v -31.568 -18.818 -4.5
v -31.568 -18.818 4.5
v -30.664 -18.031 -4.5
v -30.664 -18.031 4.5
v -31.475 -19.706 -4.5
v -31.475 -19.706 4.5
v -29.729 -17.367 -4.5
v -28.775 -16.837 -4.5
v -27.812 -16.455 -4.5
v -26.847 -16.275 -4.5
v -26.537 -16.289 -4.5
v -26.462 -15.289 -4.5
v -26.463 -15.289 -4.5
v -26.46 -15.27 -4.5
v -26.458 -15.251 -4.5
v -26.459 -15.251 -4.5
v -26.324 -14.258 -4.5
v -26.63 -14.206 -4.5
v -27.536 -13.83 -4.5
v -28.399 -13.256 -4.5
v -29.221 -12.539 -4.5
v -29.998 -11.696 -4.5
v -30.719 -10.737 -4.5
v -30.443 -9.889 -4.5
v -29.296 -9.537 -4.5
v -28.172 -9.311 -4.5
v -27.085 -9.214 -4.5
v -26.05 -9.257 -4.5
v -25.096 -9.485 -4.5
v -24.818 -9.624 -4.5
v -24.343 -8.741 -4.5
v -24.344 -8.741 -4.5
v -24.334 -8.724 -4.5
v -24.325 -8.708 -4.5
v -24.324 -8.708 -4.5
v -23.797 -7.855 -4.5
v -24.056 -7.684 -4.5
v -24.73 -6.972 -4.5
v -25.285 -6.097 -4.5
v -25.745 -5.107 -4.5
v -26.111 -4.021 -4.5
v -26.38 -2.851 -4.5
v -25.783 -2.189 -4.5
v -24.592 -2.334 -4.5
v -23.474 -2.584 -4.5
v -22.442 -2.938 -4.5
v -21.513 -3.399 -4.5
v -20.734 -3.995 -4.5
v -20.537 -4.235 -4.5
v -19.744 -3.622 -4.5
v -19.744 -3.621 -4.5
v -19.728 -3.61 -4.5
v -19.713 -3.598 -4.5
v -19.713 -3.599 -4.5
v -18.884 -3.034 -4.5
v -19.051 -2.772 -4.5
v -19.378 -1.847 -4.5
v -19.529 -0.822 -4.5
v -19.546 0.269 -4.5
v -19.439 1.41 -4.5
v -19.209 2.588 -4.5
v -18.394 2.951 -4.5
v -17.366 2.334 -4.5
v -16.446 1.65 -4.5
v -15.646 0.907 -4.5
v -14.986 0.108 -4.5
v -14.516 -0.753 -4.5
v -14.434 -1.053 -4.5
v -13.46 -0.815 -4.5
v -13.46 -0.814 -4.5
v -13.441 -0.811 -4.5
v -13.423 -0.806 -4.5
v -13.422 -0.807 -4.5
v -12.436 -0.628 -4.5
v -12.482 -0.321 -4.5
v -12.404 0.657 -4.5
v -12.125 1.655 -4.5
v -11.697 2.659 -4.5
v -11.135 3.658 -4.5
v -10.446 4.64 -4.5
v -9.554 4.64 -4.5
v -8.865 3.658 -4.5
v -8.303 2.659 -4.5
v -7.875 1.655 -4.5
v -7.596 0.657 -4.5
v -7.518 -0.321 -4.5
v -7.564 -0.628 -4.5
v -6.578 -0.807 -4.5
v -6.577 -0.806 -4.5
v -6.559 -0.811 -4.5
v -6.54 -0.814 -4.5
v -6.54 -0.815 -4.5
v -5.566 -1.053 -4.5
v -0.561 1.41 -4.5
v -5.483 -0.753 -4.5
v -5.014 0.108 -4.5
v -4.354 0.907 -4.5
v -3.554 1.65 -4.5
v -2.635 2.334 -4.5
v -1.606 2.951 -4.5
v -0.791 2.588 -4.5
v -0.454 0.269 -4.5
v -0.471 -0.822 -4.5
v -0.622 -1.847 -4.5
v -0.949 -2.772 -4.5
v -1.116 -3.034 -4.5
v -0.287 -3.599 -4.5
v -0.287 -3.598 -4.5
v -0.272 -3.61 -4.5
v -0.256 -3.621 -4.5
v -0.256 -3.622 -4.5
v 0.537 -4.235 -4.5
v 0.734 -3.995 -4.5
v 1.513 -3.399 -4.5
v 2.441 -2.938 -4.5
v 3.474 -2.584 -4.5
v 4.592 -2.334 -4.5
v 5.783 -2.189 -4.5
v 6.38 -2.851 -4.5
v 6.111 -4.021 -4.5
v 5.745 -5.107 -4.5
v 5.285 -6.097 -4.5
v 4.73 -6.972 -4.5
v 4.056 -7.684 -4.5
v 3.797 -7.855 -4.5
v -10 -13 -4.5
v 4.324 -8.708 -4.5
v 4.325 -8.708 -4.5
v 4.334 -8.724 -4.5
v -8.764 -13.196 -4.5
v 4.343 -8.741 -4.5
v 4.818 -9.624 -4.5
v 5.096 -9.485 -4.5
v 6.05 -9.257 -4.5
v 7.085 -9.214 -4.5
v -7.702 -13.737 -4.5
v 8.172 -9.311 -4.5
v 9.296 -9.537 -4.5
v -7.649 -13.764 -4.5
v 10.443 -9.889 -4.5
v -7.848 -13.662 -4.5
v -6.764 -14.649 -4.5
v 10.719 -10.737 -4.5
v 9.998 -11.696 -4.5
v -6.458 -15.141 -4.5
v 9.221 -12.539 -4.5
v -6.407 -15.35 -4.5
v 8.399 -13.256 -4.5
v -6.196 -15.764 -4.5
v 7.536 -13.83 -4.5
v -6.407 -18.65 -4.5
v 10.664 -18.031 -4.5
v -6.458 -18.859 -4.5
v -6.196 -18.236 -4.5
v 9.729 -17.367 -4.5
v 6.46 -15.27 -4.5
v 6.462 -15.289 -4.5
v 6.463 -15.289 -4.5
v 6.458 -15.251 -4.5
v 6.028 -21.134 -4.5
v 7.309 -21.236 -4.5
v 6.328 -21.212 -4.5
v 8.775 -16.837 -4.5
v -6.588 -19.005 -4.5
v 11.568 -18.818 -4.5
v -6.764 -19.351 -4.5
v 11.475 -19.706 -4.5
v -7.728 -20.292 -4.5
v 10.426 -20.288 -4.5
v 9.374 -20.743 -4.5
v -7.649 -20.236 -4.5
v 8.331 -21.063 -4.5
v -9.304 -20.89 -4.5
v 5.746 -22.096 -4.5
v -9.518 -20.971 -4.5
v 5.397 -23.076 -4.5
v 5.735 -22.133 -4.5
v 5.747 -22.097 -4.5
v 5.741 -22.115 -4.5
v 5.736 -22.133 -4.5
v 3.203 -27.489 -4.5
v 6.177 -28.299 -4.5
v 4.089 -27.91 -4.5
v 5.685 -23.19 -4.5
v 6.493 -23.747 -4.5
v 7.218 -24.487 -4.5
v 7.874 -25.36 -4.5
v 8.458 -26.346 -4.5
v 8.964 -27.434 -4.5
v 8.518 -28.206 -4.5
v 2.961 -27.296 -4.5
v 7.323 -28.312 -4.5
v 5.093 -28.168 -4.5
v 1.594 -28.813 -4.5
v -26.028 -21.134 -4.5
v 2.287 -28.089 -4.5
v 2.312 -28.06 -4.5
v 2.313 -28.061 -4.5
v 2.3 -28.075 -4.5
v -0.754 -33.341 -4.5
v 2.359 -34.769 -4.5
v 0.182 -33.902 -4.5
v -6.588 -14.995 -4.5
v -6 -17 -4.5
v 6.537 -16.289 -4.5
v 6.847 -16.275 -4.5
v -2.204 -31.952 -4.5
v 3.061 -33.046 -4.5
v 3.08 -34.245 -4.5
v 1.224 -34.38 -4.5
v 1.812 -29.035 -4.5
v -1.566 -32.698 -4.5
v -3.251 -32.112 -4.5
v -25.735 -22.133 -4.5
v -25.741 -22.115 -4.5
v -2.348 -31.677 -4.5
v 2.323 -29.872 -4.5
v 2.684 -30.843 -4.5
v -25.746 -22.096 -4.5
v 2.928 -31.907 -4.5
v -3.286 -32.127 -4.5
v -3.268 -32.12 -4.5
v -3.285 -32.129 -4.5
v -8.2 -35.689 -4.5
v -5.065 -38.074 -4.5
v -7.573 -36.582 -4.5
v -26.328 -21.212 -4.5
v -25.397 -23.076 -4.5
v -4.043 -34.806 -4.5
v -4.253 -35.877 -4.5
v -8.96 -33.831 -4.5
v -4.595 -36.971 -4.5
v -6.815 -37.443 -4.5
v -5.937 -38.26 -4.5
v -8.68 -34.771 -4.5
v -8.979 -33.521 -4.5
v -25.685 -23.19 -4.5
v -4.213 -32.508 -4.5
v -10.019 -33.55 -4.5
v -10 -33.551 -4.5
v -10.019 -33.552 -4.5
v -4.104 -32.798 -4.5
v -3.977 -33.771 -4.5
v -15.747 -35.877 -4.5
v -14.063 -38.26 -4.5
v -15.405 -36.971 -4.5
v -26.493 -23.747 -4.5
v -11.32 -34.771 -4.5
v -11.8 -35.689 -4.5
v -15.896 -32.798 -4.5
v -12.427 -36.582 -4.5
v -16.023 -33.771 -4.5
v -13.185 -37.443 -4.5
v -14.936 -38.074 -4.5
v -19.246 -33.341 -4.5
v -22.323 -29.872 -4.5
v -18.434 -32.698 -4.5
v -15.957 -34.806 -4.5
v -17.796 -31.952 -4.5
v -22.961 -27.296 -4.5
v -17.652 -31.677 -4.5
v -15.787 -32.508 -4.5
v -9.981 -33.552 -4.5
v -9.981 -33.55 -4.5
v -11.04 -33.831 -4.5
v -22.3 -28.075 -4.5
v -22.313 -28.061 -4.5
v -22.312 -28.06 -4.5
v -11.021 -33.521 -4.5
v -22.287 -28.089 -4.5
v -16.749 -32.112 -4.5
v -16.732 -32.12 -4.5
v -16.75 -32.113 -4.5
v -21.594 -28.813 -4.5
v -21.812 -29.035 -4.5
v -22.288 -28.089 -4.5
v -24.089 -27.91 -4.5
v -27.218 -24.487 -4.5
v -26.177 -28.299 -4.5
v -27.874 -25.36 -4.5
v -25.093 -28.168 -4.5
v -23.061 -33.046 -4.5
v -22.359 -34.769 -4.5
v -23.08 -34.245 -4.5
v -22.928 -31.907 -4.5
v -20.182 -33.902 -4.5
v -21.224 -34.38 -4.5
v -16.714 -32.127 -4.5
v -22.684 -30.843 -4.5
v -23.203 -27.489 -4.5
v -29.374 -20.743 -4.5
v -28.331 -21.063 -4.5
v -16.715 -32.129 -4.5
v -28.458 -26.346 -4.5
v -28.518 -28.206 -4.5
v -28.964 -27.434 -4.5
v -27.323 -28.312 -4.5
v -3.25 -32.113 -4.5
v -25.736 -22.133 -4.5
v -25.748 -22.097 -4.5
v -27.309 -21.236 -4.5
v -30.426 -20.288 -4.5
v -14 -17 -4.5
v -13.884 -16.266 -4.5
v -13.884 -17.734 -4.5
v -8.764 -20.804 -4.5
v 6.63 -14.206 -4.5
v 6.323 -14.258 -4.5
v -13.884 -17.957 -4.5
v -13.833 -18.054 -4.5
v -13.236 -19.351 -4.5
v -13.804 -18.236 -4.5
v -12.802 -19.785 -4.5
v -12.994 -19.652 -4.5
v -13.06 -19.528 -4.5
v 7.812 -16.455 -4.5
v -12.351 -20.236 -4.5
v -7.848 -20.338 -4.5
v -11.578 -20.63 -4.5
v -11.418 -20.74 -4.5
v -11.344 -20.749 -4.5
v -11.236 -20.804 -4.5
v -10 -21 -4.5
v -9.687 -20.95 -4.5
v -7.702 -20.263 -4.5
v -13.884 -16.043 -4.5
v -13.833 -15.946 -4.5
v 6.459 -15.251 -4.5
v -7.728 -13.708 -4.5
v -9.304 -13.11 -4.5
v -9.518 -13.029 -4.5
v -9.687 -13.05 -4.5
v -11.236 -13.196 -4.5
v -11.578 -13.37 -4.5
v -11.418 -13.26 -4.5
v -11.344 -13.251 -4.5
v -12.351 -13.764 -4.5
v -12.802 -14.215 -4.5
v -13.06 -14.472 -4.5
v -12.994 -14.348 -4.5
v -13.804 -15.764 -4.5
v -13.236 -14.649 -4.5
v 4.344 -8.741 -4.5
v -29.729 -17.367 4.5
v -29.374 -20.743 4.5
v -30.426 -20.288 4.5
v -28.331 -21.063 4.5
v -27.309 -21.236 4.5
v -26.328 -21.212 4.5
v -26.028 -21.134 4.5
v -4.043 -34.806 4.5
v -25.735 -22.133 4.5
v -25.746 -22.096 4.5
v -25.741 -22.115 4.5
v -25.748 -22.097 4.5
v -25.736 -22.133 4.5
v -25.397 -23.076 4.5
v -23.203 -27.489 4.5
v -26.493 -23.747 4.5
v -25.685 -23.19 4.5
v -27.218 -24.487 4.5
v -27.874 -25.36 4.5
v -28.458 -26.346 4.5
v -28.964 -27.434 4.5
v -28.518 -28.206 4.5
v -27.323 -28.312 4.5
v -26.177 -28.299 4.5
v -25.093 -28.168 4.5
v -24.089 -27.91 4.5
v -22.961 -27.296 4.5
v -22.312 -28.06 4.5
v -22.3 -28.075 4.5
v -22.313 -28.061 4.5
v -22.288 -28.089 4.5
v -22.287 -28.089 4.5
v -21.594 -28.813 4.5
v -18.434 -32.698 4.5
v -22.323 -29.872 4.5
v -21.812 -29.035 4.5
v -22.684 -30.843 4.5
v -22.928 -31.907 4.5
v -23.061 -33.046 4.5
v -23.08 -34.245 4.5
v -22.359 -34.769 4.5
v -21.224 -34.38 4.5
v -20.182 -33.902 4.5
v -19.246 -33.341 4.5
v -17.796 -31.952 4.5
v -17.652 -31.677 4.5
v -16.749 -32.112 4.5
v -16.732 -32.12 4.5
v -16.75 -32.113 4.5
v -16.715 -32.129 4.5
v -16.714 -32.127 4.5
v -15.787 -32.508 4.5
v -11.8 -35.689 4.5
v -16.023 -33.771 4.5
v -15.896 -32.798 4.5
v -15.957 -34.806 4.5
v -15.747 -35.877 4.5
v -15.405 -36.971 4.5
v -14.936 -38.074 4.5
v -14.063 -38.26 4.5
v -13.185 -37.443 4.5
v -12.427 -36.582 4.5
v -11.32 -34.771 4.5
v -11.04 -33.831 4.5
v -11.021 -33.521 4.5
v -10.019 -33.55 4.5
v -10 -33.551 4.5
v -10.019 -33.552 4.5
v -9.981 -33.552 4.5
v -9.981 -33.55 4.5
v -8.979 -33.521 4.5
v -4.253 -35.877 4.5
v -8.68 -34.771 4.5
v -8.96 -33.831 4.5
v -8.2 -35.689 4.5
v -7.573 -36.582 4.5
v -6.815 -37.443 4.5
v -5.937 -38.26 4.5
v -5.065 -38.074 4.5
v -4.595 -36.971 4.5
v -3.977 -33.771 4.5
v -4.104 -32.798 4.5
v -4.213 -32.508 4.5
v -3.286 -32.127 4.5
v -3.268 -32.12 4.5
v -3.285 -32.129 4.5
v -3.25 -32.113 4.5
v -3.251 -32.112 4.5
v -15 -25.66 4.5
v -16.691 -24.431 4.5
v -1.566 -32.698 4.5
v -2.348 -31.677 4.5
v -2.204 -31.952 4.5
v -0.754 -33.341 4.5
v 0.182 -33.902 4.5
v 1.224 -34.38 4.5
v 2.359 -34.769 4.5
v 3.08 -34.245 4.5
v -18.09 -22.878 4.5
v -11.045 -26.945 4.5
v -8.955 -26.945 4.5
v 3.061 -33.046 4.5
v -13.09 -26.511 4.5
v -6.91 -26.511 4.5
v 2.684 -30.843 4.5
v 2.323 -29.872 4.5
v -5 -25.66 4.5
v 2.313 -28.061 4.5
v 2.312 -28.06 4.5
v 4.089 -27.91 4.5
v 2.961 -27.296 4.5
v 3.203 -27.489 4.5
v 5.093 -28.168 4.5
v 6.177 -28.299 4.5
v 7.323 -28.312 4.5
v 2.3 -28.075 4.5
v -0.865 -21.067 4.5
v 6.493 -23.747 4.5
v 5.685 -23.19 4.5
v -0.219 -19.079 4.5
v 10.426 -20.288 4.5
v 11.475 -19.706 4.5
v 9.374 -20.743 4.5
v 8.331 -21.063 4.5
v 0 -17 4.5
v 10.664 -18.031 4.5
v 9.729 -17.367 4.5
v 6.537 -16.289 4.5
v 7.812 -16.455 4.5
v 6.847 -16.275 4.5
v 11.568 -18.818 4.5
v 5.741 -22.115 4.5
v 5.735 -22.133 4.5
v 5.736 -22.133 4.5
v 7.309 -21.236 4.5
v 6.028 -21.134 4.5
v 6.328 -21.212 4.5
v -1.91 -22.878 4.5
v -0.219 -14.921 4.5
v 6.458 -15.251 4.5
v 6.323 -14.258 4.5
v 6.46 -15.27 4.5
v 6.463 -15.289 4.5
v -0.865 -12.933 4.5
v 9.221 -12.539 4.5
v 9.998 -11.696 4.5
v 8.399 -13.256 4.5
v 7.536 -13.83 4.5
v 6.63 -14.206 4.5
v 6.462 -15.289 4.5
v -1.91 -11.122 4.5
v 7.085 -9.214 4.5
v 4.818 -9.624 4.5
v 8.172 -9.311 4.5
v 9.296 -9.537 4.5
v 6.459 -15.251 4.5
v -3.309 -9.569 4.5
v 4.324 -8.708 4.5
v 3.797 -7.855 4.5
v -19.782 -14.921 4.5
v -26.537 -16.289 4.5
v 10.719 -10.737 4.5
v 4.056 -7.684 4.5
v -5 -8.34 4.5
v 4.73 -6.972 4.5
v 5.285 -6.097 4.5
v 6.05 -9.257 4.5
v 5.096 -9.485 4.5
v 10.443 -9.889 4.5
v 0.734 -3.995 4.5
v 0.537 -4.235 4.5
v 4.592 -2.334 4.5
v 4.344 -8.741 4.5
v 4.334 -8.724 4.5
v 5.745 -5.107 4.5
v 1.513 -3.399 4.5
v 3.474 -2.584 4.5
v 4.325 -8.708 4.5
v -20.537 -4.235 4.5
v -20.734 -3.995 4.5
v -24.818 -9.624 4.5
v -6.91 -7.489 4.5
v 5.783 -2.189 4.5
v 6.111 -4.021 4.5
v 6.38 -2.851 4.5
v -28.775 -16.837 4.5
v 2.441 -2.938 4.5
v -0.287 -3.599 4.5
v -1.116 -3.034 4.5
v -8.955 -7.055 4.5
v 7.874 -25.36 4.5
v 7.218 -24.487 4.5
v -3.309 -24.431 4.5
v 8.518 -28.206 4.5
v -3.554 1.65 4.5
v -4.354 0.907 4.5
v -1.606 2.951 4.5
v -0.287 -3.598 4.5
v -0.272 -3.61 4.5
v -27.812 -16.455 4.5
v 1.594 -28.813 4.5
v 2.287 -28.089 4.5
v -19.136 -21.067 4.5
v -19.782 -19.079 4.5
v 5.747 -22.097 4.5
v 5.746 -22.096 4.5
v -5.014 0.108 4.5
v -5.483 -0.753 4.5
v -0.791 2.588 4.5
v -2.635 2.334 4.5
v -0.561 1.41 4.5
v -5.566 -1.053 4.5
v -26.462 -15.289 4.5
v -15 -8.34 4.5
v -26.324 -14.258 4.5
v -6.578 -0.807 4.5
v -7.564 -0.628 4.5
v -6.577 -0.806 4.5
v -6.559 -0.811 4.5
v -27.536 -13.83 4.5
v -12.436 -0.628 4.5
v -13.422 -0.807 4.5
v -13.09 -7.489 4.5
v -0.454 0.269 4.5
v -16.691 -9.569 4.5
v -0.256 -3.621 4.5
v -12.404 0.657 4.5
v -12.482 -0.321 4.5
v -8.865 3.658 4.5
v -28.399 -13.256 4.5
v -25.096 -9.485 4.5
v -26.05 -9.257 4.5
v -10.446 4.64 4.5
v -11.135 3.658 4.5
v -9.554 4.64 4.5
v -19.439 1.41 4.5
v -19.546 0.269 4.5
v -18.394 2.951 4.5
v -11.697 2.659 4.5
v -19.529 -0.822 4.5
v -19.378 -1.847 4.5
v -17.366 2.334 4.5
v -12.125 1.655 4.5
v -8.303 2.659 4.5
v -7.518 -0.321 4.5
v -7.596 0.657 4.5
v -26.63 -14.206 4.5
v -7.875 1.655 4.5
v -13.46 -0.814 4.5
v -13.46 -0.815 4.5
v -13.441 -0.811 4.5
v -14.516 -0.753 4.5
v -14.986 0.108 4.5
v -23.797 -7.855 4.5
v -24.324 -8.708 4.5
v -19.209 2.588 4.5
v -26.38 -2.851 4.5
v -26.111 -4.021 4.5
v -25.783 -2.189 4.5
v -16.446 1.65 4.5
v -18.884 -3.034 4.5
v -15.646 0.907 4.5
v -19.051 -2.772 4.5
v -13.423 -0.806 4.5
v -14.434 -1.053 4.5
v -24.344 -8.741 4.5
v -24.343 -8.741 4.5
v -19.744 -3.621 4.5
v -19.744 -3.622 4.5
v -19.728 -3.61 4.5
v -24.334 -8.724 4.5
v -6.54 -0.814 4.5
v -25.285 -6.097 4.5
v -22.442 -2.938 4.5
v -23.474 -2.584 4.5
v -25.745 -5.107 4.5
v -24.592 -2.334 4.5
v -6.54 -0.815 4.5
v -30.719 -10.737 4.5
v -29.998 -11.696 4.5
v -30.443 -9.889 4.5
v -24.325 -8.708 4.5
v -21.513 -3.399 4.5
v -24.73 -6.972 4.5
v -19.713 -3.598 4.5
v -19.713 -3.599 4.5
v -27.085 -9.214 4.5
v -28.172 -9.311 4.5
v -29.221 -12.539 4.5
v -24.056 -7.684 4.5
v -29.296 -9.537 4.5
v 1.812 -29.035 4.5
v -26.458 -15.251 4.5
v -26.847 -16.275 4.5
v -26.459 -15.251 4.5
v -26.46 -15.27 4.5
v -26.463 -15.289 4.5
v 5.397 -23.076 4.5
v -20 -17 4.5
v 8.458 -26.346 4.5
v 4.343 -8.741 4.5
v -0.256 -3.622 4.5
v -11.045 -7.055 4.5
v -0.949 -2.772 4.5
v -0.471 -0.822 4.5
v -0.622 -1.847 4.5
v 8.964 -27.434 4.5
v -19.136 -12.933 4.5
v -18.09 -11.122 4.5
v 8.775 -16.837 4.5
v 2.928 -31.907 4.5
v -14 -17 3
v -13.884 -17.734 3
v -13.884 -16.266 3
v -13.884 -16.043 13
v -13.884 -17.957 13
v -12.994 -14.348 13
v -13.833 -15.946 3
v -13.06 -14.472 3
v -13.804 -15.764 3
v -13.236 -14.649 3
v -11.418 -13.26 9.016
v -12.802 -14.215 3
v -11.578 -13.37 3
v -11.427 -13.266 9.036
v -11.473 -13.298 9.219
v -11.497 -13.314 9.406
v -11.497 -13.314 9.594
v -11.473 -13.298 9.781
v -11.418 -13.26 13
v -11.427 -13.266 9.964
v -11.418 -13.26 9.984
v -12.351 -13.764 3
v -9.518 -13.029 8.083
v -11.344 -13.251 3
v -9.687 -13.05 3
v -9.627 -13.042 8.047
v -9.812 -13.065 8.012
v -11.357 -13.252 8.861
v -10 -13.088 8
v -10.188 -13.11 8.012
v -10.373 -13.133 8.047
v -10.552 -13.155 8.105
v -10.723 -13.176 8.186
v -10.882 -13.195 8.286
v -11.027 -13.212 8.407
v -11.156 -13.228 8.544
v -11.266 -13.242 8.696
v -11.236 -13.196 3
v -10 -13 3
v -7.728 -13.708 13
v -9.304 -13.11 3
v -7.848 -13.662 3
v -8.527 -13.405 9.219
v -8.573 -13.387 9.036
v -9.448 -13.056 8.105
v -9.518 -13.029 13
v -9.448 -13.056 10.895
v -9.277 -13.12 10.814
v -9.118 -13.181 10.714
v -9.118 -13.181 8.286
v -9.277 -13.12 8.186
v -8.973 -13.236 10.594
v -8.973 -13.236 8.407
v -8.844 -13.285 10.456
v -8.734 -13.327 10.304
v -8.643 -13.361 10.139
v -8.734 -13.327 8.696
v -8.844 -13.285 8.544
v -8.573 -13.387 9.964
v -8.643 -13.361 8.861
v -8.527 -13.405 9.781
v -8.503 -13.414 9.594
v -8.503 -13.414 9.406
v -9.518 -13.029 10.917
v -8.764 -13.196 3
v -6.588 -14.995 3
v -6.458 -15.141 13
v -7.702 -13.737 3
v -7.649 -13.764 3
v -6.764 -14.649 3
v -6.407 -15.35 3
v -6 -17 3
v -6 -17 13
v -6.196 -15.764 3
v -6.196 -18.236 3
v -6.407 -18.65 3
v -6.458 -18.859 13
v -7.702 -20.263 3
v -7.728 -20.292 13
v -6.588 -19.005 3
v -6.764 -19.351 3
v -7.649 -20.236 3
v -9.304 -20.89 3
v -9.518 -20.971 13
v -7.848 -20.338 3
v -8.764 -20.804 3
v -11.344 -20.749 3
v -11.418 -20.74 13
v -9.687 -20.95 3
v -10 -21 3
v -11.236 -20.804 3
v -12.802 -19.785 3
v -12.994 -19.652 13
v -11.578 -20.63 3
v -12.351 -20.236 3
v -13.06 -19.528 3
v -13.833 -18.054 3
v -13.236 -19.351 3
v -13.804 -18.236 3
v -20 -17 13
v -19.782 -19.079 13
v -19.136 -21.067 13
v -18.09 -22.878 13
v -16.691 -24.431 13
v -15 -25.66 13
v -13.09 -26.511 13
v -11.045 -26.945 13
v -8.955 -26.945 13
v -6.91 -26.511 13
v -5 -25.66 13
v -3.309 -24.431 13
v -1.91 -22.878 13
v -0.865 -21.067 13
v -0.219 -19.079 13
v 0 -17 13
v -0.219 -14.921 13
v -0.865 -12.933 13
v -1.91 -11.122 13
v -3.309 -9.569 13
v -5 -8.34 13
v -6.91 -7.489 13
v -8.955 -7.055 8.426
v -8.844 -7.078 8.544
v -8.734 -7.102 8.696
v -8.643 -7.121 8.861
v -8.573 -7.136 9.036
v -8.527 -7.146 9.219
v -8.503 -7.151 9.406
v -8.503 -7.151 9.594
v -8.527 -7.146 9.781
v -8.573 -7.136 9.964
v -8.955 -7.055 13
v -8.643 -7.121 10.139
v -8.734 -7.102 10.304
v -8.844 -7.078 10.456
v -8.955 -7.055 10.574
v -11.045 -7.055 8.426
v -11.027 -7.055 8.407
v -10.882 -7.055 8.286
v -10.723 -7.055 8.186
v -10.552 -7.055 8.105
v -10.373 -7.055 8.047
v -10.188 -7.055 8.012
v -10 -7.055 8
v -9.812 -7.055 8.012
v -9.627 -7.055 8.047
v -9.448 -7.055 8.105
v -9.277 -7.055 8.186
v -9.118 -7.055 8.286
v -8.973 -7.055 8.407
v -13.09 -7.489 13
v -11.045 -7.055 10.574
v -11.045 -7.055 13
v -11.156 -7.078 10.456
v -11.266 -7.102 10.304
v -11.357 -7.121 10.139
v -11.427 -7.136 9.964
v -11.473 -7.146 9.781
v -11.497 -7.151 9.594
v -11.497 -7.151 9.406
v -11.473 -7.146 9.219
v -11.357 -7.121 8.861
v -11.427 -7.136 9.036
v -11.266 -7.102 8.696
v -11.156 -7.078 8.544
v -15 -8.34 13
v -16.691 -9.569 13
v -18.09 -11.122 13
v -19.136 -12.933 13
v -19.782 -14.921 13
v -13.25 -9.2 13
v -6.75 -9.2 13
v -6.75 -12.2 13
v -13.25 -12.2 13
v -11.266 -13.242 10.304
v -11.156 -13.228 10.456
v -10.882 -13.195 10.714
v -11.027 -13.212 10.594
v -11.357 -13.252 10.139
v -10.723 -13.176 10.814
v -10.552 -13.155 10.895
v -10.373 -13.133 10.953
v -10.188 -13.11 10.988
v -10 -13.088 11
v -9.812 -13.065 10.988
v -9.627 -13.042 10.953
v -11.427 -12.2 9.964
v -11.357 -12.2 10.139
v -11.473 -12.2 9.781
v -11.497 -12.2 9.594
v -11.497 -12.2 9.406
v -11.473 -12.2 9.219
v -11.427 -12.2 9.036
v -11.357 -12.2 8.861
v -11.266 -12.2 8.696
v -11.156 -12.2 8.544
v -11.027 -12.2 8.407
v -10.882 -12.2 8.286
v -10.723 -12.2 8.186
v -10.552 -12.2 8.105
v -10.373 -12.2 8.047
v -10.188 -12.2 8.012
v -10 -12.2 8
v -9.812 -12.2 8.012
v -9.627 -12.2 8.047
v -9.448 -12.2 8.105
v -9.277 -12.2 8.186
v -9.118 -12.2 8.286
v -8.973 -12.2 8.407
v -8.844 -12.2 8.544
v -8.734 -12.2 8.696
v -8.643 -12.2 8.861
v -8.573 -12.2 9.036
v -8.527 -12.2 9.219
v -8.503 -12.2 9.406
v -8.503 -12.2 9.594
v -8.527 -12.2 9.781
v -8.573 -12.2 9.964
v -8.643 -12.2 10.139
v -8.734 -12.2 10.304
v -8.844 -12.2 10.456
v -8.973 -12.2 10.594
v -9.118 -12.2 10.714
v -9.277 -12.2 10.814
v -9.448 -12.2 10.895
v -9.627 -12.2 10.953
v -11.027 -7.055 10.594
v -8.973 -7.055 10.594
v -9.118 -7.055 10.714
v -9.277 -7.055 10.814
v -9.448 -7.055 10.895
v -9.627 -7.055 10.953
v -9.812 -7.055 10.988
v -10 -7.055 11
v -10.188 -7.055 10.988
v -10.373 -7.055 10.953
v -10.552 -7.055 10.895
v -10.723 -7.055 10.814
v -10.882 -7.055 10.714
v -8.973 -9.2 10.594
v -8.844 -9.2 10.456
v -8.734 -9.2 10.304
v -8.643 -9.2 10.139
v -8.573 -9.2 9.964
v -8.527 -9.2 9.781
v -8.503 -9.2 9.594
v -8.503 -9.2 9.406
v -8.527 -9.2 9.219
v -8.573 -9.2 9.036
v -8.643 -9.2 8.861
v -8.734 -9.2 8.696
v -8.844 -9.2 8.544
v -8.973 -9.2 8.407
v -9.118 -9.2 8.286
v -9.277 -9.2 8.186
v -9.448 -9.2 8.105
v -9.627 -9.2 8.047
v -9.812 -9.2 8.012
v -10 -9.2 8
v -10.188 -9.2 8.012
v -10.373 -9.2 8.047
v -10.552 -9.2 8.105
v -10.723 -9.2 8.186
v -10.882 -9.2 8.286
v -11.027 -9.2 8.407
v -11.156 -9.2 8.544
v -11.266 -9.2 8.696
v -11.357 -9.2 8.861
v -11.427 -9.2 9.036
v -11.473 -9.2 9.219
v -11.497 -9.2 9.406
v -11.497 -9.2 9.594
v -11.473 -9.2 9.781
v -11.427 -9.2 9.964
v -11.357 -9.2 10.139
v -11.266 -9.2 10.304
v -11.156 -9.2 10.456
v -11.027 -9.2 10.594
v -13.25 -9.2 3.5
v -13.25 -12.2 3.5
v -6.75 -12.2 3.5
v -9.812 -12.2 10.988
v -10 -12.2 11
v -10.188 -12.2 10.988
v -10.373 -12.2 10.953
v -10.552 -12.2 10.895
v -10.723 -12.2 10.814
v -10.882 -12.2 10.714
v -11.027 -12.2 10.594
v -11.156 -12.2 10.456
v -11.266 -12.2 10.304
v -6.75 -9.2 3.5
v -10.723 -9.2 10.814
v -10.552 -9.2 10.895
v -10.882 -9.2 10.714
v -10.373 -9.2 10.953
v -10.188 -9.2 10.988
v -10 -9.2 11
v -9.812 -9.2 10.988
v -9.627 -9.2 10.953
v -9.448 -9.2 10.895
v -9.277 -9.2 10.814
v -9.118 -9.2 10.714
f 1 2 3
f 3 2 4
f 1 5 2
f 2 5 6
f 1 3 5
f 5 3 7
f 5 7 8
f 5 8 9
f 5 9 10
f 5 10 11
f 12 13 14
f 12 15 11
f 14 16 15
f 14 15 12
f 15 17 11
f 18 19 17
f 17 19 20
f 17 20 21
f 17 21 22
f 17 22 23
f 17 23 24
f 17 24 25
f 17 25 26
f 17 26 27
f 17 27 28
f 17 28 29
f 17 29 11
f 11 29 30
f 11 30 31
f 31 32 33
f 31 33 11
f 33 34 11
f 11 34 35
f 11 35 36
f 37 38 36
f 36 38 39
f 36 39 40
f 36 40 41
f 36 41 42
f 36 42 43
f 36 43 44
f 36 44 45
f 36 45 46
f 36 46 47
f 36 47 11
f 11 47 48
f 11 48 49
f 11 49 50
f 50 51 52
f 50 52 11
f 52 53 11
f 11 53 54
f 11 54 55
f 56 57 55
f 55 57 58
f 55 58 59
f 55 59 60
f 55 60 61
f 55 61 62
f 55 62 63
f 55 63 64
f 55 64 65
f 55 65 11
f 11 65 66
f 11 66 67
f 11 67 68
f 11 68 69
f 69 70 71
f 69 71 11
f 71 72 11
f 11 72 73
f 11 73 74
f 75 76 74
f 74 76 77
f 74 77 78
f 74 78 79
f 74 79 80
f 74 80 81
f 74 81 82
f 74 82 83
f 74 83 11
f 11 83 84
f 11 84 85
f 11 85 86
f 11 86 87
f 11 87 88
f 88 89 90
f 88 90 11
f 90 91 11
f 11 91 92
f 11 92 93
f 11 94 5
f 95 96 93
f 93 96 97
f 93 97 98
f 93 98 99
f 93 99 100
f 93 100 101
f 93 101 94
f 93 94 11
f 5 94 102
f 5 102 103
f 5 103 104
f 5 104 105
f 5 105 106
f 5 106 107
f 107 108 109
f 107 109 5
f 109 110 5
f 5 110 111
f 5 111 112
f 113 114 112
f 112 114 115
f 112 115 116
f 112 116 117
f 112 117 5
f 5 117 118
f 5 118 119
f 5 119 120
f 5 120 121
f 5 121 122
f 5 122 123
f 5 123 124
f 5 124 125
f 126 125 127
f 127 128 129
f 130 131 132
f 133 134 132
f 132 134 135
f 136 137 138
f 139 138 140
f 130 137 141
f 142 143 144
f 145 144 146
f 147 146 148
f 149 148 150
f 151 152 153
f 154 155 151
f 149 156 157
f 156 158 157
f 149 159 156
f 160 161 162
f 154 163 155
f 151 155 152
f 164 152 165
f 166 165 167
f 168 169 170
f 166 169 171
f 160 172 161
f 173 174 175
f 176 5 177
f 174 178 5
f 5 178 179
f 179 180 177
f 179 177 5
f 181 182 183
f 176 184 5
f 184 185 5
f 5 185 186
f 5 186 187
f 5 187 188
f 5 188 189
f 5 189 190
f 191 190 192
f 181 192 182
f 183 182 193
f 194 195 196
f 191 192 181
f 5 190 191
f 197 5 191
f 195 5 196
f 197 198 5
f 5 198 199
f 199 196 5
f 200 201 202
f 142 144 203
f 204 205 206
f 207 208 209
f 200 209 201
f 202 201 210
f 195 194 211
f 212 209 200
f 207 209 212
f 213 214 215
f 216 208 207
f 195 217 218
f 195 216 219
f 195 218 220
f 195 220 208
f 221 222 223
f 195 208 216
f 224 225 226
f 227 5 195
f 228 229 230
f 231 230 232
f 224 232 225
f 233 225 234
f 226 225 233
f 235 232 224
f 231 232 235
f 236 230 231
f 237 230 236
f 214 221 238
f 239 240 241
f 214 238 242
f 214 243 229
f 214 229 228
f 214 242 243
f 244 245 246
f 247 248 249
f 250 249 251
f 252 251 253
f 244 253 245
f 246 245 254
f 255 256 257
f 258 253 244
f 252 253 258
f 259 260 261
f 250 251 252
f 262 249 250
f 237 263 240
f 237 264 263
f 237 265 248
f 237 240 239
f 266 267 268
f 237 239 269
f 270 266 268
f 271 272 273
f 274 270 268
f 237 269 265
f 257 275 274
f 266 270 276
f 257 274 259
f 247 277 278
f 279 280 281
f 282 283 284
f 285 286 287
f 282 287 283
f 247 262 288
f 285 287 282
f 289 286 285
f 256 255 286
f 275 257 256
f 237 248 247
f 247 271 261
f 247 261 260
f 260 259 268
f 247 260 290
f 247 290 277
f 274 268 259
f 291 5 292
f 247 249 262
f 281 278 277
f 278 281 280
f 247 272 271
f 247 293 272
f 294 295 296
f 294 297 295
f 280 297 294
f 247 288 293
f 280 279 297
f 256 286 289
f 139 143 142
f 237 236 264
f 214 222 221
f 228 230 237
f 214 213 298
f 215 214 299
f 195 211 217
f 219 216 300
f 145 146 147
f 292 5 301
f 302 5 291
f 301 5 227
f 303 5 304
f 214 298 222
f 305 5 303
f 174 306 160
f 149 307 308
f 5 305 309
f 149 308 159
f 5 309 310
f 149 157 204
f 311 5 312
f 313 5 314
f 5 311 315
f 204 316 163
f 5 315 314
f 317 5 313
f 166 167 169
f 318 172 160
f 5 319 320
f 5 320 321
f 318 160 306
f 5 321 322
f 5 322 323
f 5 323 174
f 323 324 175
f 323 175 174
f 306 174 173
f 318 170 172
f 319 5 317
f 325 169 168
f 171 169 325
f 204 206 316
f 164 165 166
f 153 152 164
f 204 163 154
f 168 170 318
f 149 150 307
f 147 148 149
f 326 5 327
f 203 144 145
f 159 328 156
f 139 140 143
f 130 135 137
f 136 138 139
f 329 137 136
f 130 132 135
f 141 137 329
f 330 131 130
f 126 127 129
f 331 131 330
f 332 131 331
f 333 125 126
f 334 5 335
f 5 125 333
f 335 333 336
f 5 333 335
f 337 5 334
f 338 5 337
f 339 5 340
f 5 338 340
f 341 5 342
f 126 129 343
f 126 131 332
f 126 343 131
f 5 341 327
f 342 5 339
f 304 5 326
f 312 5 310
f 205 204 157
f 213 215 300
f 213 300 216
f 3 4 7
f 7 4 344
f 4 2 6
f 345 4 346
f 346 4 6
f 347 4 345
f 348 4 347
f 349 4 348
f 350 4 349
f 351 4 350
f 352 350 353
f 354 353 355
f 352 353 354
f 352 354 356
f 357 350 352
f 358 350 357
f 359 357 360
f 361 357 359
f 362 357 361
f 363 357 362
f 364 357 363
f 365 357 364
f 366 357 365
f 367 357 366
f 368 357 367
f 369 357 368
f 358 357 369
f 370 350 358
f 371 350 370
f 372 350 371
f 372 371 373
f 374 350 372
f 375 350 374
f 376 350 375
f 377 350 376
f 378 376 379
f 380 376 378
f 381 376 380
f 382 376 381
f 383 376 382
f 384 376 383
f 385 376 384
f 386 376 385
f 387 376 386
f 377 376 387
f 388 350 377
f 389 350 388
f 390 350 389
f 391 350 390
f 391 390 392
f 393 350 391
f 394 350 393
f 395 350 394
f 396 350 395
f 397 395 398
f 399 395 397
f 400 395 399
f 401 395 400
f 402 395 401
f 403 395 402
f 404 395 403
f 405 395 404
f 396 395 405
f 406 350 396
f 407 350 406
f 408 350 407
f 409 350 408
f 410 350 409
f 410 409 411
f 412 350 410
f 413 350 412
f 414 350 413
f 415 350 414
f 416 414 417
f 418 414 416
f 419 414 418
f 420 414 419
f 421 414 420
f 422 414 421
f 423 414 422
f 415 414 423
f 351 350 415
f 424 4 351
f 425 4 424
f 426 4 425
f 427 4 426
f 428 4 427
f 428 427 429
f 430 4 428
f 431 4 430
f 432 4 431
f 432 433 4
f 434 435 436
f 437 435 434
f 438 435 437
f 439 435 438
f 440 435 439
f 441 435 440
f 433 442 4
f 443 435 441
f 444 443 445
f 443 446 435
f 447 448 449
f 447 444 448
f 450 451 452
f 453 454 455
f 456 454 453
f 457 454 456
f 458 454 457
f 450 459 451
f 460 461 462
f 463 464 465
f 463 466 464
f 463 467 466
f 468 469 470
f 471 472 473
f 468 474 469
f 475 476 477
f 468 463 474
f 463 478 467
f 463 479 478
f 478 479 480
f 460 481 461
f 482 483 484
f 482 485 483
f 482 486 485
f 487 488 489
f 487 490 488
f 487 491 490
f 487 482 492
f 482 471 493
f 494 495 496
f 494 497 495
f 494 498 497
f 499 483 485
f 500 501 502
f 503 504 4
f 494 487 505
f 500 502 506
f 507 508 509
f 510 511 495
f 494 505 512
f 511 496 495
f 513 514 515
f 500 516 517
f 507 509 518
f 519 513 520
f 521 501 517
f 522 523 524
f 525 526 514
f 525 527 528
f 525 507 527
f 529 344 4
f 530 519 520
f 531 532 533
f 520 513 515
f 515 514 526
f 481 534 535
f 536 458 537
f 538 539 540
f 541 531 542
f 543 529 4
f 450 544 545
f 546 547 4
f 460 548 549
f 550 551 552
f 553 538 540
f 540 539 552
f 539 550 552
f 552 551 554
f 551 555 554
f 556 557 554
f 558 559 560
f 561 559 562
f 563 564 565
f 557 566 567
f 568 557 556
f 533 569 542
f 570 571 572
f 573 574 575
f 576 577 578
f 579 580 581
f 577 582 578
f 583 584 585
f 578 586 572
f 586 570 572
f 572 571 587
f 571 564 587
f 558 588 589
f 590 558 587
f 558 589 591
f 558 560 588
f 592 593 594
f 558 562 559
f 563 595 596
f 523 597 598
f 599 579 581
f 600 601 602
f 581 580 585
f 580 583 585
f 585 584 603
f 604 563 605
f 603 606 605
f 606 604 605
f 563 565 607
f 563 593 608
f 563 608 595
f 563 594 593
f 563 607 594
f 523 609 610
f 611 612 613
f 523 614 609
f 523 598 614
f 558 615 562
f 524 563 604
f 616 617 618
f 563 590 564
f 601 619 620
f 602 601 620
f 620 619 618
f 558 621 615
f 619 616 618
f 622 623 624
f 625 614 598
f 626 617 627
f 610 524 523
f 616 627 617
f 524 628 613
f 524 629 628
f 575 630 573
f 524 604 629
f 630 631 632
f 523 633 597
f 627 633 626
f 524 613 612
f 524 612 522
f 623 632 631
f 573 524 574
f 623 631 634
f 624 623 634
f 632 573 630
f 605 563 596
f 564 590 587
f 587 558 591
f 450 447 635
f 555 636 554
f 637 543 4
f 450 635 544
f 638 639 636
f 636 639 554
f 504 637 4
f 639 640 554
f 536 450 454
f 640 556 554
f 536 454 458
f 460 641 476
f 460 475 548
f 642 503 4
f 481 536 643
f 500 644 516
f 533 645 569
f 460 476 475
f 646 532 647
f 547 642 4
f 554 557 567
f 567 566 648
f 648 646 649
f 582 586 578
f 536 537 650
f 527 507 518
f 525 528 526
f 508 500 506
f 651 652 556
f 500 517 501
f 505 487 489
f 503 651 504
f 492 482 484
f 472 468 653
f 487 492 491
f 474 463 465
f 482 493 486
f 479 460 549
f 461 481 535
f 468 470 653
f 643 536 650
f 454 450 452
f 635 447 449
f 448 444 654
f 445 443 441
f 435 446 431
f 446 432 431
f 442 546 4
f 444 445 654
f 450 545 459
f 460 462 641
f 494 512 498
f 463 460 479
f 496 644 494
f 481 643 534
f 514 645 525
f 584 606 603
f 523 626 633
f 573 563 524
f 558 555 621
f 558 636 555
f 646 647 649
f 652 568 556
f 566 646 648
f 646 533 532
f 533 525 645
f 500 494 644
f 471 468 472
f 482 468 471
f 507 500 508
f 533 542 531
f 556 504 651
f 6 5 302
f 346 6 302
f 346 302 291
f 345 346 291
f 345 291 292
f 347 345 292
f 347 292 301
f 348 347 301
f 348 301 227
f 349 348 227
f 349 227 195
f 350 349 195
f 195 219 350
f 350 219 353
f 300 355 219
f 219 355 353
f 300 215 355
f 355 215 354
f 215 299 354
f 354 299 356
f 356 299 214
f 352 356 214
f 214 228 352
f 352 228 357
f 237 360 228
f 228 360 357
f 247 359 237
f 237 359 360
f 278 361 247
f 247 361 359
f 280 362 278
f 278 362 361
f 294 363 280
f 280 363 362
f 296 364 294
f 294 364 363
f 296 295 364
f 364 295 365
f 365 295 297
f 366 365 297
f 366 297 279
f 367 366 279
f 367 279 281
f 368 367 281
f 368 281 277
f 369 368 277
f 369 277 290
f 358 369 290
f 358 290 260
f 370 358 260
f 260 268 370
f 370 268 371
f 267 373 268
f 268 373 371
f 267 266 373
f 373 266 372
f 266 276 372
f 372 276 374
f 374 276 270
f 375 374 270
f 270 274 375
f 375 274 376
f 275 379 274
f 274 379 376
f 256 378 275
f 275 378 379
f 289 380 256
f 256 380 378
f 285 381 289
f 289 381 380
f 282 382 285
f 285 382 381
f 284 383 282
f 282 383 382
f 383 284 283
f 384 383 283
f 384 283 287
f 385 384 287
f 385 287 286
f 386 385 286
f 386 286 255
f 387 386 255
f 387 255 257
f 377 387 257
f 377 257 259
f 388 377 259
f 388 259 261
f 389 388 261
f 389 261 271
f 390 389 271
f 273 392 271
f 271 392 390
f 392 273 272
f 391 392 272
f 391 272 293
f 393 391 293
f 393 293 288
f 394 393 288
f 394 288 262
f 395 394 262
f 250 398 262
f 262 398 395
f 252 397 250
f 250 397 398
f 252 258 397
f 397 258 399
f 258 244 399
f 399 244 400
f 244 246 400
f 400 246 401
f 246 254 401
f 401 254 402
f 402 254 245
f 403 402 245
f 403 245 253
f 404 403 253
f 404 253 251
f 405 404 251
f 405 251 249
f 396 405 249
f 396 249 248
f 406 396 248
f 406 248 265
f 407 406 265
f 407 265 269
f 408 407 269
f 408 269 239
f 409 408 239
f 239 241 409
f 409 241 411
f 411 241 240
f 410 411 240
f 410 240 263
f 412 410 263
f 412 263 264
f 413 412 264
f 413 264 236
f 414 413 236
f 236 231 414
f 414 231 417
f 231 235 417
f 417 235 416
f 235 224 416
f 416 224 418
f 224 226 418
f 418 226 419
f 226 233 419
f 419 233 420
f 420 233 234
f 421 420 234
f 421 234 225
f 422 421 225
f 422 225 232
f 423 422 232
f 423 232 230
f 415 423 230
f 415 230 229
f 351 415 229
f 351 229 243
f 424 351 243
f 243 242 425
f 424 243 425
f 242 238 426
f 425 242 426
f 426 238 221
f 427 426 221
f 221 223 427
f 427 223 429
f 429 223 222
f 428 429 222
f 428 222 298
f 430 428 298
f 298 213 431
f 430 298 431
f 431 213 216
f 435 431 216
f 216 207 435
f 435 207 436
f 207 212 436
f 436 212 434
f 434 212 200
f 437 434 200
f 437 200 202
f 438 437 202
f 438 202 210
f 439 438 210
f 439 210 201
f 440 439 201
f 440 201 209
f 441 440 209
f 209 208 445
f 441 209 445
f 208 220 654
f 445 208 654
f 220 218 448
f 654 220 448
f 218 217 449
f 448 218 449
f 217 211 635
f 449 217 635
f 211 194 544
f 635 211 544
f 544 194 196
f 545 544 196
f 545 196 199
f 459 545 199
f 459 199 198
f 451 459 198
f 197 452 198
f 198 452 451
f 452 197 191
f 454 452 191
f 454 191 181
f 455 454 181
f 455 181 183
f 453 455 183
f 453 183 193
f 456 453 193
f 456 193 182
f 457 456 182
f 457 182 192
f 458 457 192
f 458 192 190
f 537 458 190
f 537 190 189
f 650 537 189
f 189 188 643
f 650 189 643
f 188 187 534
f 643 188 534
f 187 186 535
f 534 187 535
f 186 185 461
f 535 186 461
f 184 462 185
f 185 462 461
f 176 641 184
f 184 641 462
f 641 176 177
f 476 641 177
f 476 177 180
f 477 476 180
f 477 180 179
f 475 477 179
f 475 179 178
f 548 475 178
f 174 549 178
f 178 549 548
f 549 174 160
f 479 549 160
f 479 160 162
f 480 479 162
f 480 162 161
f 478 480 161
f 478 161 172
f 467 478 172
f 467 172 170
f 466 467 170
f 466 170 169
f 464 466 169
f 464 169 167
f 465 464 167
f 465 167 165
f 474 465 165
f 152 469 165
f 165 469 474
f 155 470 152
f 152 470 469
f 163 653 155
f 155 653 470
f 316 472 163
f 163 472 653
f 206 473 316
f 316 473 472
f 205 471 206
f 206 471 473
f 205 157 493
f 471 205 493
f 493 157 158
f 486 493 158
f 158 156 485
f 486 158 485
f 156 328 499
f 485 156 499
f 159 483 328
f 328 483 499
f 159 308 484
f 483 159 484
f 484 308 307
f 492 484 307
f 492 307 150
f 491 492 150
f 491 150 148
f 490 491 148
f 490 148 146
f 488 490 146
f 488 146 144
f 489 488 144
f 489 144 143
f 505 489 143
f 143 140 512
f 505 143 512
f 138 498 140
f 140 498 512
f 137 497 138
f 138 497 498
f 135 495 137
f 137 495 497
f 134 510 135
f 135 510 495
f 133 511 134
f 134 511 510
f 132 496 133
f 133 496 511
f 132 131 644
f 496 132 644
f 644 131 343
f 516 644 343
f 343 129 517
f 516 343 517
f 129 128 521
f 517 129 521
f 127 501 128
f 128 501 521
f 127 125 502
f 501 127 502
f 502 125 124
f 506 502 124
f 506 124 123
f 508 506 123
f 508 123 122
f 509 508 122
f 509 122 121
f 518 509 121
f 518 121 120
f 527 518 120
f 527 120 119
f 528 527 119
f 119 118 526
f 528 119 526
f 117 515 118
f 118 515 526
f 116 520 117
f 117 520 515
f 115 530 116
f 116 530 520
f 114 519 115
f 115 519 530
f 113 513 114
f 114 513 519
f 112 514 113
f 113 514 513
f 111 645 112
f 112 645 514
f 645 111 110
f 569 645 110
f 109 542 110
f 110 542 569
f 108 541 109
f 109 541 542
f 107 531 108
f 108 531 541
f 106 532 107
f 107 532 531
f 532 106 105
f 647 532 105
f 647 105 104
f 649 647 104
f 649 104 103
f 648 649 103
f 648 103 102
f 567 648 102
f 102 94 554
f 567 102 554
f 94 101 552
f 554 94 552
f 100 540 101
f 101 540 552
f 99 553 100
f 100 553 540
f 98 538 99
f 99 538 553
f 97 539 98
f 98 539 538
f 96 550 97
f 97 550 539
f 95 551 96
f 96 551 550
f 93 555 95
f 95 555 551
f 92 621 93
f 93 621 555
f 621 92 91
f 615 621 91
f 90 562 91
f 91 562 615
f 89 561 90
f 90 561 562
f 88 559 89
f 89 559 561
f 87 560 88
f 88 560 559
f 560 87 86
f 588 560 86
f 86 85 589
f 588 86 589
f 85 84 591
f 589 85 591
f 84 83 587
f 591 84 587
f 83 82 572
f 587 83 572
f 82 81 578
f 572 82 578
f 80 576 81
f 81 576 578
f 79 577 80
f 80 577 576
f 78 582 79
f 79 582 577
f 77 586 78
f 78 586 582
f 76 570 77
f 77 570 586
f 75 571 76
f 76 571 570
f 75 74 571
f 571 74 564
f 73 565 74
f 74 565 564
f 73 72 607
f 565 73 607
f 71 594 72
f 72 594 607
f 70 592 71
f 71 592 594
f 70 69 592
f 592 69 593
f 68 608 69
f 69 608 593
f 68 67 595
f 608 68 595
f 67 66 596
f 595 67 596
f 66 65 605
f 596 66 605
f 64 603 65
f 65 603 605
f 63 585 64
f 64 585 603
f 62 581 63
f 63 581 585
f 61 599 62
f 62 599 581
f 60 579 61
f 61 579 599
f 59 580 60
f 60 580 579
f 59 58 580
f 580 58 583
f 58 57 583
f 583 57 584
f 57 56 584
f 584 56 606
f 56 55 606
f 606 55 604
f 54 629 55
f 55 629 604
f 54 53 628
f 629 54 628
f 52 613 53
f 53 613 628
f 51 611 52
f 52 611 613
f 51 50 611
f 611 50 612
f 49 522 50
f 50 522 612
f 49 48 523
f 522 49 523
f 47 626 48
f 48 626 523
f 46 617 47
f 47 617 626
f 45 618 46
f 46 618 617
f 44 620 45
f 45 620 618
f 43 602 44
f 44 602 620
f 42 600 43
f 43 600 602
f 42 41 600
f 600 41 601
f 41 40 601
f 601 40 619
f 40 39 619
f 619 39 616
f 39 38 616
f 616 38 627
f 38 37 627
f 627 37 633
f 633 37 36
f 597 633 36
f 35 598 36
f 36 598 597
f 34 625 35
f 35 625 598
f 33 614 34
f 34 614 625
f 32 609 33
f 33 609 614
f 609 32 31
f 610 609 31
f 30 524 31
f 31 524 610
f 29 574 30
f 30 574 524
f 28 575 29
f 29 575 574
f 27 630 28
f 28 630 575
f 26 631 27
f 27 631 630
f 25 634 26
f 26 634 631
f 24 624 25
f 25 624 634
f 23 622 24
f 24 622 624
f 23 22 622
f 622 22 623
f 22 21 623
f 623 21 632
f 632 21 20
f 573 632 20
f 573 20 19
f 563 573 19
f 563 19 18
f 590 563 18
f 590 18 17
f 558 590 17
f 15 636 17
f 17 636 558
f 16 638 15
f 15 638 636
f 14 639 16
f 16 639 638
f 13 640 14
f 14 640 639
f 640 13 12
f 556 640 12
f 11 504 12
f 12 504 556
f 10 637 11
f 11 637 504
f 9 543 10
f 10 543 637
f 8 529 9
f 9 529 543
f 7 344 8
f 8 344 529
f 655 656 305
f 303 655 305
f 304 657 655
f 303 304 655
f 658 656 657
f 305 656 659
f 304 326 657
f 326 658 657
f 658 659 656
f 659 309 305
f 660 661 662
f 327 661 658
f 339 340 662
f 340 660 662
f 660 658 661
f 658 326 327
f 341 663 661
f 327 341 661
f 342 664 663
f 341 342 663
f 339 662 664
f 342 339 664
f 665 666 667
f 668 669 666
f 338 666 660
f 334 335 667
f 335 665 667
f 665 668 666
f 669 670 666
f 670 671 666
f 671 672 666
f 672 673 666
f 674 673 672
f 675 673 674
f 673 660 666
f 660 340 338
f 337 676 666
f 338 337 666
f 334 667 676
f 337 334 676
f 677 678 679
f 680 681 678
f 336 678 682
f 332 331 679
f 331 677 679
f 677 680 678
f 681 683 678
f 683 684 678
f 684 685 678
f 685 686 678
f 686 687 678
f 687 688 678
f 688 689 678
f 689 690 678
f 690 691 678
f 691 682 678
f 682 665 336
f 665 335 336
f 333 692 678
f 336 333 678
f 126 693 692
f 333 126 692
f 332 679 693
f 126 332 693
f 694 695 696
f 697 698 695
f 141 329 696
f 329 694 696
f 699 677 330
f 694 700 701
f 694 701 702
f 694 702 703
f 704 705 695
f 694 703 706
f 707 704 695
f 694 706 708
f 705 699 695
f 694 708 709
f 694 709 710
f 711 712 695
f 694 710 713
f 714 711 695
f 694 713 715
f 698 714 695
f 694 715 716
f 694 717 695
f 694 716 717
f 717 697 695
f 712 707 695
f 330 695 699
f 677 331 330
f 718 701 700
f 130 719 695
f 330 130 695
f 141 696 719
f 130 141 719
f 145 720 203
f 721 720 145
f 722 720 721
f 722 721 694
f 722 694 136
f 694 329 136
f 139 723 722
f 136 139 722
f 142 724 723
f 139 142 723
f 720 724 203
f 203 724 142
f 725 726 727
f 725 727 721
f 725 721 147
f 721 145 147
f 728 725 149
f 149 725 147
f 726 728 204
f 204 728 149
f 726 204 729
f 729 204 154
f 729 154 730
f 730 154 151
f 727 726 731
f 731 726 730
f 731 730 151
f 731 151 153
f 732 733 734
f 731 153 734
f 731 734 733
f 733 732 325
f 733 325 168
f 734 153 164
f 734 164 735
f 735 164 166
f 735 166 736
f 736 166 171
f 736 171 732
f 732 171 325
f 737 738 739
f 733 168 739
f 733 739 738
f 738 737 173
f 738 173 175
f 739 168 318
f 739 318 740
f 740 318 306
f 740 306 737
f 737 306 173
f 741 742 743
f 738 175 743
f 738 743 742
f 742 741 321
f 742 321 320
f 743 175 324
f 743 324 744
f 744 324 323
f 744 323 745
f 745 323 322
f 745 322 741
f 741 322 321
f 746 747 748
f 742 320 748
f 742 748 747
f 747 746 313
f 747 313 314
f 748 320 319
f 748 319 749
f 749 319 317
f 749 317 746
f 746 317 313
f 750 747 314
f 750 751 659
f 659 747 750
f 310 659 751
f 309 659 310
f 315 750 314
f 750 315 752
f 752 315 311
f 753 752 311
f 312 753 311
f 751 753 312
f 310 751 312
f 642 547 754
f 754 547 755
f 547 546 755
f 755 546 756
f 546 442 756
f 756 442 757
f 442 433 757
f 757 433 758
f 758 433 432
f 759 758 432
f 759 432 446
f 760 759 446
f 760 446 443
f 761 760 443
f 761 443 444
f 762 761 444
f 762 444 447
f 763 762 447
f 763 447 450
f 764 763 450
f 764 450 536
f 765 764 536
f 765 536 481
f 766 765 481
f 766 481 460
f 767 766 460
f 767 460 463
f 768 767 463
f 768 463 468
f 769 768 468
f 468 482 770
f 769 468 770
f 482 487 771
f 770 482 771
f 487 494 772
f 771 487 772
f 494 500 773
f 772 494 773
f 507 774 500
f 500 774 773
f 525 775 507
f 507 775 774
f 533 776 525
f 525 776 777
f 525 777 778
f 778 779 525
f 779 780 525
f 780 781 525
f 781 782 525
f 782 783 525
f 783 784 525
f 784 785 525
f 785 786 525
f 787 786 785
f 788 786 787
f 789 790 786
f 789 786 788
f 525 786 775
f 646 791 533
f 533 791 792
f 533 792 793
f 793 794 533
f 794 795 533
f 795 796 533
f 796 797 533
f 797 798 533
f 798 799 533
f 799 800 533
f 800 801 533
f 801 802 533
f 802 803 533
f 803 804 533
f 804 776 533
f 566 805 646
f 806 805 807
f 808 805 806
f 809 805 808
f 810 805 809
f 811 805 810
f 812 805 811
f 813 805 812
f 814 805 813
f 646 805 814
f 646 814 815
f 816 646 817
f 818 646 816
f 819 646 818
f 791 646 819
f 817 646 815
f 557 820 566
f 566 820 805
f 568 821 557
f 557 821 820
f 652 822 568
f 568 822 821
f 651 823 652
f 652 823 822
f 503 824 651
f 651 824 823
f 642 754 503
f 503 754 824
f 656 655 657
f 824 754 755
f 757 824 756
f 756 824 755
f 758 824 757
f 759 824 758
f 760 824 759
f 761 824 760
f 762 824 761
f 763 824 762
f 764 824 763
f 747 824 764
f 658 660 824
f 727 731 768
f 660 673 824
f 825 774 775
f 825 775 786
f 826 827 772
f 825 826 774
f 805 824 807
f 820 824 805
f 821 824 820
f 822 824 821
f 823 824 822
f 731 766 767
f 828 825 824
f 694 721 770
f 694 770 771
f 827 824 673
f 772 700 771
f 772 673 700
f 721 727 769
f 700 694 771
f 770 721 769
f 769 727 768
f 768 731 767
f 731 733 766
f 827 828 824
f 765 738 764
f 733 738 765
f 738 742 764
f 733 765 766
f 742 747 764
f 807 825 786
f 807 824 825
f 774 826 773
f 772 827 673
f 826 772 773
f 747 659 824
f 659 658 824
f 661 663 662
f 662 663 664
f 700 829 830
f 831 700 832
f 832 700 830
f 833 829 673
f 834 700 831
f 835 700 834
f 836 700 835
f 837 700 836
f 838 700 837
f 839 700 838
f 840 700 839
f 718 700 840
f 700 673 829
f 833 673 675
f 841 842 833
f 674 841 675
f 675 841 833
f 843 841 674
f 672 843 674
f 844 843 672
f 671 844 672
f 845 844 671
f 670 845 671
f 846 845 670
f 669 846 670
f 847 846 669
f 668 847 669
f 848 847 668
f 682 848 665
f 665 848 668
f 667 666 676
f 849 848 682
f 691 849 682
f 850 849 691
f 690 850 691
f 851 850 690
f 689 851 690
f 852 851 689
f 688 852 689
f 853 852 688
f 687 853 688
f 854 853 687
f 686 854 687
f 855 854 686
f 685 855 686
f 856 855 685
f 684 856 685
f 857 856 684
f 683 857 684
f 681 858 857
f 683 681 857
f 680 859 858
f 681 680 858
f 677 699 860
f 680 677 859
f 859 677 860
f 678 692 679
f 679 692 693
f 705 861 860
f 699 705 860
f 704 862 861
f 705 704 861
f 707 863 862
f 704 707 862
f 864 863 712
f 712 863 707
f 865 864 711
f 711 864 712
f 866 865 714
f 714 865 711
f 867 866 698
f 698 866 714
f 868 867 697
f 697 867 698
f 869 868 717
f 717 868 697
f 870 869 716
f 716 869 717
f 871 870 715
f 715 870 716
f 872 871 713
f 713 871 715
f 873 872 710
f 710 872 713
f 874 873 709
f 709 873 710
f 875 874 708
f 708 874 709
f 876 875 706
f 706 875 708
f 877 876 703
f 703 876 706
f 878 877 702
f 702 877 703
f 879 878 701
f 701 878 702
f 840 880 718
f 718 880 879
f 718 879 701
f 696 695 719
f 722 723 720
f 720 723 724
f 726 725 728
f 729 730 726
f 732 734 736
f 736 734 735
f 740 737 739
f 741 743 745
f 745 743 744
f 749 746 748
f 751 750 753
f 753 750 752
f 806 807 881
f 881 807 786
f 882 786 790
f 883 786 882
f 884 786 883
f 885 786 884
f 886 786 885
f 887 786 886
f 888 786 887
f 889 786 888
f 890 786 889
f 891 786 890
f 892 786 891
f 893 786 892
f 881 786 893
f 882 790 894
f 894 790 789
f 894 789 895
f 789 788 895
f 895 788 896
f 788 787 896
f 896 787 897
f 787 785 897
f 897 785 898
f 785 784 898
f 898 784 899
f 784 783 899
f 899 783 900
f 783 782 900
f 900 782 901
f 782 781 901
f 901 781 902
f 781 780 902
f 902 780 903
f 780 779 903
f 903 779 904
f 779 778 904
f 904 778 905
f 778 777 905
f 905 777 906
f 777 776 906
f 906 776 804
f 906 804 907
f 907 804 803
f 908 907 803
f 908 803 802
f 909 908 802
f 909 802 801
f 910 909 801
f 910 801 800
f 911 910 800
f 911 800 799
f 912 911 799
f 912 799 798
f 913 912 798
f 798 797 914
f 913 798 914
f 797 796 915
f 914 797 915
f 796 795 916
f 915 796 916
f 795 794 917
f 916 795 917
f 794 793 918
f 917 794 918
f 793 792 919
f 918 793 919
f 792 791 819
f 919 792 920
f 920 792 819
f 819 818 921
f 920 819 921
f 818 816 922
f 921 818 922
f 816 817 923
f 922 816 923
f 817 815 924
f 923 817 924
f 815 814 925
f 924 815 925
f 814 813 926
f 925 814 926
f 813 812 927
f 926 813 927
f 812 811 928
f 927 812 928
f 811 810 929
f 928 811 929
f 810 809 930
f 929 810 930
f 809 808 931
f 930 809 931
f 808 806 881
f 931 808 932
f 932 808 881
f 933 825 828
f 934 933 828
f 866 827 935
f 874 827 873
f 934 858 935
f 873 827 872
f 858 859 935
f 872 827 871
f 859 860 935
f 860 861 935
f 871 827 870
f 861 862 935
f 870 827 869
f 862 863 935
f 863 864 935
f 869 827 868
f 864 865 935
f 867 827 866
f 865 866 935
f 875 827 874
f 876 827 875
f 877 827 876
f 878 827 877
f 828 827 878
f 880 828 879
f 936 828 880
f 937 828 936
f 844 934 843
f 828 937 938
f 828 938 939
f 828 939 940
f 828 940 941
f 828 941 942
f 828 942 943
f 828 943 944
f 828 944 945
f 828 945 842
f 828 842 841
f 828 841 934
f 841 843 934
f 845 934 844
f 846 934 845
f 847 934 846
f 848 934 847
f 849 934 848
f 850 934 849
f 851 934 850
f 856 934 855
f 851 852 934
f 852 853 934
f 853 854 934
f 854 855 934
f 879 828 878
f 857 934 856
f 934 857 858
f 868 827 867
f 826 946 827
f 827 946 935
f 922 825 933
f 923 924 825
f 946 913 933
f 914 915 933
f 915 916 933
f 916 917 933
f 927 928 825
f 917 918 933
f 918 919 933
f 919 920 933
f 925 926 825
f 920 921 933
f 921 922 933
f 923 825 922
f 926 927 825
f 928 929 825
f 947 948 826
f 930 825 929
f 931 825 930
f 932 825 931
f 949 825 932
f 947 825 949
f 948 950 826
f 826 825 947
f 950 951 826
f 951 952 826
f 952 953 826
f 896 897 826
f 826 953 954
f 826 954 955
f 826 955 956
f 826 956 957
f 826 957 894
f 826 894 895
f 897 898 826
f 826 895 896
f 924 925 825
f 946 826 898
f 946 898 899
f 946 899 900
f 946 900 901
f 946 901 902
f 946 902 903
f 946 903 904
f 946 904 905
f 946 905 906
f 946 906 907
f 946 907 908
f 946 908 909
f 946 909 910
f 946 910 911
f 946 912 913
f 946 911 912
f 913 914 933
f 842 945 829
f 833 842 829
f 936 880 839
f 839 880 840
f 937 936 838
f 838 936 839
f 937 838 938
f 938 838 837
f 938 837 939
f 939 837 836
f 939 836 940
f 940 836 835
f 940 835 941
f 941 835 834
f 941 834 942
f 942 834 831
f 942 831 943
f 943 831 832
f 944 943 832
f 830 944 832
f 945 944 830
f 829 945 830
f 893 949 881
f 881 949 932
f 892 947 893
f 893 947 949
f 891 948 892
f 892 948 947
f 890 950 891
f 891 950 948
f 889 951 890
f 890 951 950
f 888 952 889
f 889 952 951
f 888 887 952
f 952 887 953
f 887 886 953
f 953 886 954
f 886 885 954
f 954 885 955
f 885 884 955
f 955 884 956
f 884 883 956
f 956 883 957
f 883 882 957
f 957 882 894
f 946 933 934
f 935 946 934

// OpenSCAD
// PCB Drill Press for Hobby Drills
//
// Gear to drive the rack
//
// Copyright Mark Benson - Sept 2013
// 
// Licensed under:
// Creative Commons Attribution-NonCommercial-ShareAlike 3.0
//

// Call module here to render model for printing
// Comment out when calling from drill_press_assembly or you 
// will end up with two copies of the model.
slideGear();


// Include publicDomainGearV1.1.scad to generate gear
include <publicDomainGearV1.1.scad>;


//Gear
module slideGear()
{
translate([0,0,0])
rotate([0,270,0])
difference()
{
	union()
	{
		color("blue")
		rotate([0,90,0])
		translate([-10,-17,8])
		cylinder(r=20/2, h=10, center=true);
		
		color("yellow")
		rotate([0,90,0])
		translate([-10,-17,0])
		gear(8,15,9,8);
		//gear(pitch-circle,number-of-teeth,gear-thickness,hole-thickness)
	}

	union()
	{	
	//Shaft cutout
	color("blue")
	rotate([0,90,0])
	translate([-10,-17,0])
	cylinder(r=8/2, h=100, center=true);

	//M3 Nut cutout
	color("red")
	translate([16,-10.7,10])
	rotate([0,0,0])
	cube([25,3,6.5], center=true);

	//M3 Screw cutout
	color("red")
	translate([9.5,-10,10])
	rotate([90,0,0])
	cylinder(r=3/2, h=20, $fn=50, center=true);
	}


}

}//end module slideGear()
